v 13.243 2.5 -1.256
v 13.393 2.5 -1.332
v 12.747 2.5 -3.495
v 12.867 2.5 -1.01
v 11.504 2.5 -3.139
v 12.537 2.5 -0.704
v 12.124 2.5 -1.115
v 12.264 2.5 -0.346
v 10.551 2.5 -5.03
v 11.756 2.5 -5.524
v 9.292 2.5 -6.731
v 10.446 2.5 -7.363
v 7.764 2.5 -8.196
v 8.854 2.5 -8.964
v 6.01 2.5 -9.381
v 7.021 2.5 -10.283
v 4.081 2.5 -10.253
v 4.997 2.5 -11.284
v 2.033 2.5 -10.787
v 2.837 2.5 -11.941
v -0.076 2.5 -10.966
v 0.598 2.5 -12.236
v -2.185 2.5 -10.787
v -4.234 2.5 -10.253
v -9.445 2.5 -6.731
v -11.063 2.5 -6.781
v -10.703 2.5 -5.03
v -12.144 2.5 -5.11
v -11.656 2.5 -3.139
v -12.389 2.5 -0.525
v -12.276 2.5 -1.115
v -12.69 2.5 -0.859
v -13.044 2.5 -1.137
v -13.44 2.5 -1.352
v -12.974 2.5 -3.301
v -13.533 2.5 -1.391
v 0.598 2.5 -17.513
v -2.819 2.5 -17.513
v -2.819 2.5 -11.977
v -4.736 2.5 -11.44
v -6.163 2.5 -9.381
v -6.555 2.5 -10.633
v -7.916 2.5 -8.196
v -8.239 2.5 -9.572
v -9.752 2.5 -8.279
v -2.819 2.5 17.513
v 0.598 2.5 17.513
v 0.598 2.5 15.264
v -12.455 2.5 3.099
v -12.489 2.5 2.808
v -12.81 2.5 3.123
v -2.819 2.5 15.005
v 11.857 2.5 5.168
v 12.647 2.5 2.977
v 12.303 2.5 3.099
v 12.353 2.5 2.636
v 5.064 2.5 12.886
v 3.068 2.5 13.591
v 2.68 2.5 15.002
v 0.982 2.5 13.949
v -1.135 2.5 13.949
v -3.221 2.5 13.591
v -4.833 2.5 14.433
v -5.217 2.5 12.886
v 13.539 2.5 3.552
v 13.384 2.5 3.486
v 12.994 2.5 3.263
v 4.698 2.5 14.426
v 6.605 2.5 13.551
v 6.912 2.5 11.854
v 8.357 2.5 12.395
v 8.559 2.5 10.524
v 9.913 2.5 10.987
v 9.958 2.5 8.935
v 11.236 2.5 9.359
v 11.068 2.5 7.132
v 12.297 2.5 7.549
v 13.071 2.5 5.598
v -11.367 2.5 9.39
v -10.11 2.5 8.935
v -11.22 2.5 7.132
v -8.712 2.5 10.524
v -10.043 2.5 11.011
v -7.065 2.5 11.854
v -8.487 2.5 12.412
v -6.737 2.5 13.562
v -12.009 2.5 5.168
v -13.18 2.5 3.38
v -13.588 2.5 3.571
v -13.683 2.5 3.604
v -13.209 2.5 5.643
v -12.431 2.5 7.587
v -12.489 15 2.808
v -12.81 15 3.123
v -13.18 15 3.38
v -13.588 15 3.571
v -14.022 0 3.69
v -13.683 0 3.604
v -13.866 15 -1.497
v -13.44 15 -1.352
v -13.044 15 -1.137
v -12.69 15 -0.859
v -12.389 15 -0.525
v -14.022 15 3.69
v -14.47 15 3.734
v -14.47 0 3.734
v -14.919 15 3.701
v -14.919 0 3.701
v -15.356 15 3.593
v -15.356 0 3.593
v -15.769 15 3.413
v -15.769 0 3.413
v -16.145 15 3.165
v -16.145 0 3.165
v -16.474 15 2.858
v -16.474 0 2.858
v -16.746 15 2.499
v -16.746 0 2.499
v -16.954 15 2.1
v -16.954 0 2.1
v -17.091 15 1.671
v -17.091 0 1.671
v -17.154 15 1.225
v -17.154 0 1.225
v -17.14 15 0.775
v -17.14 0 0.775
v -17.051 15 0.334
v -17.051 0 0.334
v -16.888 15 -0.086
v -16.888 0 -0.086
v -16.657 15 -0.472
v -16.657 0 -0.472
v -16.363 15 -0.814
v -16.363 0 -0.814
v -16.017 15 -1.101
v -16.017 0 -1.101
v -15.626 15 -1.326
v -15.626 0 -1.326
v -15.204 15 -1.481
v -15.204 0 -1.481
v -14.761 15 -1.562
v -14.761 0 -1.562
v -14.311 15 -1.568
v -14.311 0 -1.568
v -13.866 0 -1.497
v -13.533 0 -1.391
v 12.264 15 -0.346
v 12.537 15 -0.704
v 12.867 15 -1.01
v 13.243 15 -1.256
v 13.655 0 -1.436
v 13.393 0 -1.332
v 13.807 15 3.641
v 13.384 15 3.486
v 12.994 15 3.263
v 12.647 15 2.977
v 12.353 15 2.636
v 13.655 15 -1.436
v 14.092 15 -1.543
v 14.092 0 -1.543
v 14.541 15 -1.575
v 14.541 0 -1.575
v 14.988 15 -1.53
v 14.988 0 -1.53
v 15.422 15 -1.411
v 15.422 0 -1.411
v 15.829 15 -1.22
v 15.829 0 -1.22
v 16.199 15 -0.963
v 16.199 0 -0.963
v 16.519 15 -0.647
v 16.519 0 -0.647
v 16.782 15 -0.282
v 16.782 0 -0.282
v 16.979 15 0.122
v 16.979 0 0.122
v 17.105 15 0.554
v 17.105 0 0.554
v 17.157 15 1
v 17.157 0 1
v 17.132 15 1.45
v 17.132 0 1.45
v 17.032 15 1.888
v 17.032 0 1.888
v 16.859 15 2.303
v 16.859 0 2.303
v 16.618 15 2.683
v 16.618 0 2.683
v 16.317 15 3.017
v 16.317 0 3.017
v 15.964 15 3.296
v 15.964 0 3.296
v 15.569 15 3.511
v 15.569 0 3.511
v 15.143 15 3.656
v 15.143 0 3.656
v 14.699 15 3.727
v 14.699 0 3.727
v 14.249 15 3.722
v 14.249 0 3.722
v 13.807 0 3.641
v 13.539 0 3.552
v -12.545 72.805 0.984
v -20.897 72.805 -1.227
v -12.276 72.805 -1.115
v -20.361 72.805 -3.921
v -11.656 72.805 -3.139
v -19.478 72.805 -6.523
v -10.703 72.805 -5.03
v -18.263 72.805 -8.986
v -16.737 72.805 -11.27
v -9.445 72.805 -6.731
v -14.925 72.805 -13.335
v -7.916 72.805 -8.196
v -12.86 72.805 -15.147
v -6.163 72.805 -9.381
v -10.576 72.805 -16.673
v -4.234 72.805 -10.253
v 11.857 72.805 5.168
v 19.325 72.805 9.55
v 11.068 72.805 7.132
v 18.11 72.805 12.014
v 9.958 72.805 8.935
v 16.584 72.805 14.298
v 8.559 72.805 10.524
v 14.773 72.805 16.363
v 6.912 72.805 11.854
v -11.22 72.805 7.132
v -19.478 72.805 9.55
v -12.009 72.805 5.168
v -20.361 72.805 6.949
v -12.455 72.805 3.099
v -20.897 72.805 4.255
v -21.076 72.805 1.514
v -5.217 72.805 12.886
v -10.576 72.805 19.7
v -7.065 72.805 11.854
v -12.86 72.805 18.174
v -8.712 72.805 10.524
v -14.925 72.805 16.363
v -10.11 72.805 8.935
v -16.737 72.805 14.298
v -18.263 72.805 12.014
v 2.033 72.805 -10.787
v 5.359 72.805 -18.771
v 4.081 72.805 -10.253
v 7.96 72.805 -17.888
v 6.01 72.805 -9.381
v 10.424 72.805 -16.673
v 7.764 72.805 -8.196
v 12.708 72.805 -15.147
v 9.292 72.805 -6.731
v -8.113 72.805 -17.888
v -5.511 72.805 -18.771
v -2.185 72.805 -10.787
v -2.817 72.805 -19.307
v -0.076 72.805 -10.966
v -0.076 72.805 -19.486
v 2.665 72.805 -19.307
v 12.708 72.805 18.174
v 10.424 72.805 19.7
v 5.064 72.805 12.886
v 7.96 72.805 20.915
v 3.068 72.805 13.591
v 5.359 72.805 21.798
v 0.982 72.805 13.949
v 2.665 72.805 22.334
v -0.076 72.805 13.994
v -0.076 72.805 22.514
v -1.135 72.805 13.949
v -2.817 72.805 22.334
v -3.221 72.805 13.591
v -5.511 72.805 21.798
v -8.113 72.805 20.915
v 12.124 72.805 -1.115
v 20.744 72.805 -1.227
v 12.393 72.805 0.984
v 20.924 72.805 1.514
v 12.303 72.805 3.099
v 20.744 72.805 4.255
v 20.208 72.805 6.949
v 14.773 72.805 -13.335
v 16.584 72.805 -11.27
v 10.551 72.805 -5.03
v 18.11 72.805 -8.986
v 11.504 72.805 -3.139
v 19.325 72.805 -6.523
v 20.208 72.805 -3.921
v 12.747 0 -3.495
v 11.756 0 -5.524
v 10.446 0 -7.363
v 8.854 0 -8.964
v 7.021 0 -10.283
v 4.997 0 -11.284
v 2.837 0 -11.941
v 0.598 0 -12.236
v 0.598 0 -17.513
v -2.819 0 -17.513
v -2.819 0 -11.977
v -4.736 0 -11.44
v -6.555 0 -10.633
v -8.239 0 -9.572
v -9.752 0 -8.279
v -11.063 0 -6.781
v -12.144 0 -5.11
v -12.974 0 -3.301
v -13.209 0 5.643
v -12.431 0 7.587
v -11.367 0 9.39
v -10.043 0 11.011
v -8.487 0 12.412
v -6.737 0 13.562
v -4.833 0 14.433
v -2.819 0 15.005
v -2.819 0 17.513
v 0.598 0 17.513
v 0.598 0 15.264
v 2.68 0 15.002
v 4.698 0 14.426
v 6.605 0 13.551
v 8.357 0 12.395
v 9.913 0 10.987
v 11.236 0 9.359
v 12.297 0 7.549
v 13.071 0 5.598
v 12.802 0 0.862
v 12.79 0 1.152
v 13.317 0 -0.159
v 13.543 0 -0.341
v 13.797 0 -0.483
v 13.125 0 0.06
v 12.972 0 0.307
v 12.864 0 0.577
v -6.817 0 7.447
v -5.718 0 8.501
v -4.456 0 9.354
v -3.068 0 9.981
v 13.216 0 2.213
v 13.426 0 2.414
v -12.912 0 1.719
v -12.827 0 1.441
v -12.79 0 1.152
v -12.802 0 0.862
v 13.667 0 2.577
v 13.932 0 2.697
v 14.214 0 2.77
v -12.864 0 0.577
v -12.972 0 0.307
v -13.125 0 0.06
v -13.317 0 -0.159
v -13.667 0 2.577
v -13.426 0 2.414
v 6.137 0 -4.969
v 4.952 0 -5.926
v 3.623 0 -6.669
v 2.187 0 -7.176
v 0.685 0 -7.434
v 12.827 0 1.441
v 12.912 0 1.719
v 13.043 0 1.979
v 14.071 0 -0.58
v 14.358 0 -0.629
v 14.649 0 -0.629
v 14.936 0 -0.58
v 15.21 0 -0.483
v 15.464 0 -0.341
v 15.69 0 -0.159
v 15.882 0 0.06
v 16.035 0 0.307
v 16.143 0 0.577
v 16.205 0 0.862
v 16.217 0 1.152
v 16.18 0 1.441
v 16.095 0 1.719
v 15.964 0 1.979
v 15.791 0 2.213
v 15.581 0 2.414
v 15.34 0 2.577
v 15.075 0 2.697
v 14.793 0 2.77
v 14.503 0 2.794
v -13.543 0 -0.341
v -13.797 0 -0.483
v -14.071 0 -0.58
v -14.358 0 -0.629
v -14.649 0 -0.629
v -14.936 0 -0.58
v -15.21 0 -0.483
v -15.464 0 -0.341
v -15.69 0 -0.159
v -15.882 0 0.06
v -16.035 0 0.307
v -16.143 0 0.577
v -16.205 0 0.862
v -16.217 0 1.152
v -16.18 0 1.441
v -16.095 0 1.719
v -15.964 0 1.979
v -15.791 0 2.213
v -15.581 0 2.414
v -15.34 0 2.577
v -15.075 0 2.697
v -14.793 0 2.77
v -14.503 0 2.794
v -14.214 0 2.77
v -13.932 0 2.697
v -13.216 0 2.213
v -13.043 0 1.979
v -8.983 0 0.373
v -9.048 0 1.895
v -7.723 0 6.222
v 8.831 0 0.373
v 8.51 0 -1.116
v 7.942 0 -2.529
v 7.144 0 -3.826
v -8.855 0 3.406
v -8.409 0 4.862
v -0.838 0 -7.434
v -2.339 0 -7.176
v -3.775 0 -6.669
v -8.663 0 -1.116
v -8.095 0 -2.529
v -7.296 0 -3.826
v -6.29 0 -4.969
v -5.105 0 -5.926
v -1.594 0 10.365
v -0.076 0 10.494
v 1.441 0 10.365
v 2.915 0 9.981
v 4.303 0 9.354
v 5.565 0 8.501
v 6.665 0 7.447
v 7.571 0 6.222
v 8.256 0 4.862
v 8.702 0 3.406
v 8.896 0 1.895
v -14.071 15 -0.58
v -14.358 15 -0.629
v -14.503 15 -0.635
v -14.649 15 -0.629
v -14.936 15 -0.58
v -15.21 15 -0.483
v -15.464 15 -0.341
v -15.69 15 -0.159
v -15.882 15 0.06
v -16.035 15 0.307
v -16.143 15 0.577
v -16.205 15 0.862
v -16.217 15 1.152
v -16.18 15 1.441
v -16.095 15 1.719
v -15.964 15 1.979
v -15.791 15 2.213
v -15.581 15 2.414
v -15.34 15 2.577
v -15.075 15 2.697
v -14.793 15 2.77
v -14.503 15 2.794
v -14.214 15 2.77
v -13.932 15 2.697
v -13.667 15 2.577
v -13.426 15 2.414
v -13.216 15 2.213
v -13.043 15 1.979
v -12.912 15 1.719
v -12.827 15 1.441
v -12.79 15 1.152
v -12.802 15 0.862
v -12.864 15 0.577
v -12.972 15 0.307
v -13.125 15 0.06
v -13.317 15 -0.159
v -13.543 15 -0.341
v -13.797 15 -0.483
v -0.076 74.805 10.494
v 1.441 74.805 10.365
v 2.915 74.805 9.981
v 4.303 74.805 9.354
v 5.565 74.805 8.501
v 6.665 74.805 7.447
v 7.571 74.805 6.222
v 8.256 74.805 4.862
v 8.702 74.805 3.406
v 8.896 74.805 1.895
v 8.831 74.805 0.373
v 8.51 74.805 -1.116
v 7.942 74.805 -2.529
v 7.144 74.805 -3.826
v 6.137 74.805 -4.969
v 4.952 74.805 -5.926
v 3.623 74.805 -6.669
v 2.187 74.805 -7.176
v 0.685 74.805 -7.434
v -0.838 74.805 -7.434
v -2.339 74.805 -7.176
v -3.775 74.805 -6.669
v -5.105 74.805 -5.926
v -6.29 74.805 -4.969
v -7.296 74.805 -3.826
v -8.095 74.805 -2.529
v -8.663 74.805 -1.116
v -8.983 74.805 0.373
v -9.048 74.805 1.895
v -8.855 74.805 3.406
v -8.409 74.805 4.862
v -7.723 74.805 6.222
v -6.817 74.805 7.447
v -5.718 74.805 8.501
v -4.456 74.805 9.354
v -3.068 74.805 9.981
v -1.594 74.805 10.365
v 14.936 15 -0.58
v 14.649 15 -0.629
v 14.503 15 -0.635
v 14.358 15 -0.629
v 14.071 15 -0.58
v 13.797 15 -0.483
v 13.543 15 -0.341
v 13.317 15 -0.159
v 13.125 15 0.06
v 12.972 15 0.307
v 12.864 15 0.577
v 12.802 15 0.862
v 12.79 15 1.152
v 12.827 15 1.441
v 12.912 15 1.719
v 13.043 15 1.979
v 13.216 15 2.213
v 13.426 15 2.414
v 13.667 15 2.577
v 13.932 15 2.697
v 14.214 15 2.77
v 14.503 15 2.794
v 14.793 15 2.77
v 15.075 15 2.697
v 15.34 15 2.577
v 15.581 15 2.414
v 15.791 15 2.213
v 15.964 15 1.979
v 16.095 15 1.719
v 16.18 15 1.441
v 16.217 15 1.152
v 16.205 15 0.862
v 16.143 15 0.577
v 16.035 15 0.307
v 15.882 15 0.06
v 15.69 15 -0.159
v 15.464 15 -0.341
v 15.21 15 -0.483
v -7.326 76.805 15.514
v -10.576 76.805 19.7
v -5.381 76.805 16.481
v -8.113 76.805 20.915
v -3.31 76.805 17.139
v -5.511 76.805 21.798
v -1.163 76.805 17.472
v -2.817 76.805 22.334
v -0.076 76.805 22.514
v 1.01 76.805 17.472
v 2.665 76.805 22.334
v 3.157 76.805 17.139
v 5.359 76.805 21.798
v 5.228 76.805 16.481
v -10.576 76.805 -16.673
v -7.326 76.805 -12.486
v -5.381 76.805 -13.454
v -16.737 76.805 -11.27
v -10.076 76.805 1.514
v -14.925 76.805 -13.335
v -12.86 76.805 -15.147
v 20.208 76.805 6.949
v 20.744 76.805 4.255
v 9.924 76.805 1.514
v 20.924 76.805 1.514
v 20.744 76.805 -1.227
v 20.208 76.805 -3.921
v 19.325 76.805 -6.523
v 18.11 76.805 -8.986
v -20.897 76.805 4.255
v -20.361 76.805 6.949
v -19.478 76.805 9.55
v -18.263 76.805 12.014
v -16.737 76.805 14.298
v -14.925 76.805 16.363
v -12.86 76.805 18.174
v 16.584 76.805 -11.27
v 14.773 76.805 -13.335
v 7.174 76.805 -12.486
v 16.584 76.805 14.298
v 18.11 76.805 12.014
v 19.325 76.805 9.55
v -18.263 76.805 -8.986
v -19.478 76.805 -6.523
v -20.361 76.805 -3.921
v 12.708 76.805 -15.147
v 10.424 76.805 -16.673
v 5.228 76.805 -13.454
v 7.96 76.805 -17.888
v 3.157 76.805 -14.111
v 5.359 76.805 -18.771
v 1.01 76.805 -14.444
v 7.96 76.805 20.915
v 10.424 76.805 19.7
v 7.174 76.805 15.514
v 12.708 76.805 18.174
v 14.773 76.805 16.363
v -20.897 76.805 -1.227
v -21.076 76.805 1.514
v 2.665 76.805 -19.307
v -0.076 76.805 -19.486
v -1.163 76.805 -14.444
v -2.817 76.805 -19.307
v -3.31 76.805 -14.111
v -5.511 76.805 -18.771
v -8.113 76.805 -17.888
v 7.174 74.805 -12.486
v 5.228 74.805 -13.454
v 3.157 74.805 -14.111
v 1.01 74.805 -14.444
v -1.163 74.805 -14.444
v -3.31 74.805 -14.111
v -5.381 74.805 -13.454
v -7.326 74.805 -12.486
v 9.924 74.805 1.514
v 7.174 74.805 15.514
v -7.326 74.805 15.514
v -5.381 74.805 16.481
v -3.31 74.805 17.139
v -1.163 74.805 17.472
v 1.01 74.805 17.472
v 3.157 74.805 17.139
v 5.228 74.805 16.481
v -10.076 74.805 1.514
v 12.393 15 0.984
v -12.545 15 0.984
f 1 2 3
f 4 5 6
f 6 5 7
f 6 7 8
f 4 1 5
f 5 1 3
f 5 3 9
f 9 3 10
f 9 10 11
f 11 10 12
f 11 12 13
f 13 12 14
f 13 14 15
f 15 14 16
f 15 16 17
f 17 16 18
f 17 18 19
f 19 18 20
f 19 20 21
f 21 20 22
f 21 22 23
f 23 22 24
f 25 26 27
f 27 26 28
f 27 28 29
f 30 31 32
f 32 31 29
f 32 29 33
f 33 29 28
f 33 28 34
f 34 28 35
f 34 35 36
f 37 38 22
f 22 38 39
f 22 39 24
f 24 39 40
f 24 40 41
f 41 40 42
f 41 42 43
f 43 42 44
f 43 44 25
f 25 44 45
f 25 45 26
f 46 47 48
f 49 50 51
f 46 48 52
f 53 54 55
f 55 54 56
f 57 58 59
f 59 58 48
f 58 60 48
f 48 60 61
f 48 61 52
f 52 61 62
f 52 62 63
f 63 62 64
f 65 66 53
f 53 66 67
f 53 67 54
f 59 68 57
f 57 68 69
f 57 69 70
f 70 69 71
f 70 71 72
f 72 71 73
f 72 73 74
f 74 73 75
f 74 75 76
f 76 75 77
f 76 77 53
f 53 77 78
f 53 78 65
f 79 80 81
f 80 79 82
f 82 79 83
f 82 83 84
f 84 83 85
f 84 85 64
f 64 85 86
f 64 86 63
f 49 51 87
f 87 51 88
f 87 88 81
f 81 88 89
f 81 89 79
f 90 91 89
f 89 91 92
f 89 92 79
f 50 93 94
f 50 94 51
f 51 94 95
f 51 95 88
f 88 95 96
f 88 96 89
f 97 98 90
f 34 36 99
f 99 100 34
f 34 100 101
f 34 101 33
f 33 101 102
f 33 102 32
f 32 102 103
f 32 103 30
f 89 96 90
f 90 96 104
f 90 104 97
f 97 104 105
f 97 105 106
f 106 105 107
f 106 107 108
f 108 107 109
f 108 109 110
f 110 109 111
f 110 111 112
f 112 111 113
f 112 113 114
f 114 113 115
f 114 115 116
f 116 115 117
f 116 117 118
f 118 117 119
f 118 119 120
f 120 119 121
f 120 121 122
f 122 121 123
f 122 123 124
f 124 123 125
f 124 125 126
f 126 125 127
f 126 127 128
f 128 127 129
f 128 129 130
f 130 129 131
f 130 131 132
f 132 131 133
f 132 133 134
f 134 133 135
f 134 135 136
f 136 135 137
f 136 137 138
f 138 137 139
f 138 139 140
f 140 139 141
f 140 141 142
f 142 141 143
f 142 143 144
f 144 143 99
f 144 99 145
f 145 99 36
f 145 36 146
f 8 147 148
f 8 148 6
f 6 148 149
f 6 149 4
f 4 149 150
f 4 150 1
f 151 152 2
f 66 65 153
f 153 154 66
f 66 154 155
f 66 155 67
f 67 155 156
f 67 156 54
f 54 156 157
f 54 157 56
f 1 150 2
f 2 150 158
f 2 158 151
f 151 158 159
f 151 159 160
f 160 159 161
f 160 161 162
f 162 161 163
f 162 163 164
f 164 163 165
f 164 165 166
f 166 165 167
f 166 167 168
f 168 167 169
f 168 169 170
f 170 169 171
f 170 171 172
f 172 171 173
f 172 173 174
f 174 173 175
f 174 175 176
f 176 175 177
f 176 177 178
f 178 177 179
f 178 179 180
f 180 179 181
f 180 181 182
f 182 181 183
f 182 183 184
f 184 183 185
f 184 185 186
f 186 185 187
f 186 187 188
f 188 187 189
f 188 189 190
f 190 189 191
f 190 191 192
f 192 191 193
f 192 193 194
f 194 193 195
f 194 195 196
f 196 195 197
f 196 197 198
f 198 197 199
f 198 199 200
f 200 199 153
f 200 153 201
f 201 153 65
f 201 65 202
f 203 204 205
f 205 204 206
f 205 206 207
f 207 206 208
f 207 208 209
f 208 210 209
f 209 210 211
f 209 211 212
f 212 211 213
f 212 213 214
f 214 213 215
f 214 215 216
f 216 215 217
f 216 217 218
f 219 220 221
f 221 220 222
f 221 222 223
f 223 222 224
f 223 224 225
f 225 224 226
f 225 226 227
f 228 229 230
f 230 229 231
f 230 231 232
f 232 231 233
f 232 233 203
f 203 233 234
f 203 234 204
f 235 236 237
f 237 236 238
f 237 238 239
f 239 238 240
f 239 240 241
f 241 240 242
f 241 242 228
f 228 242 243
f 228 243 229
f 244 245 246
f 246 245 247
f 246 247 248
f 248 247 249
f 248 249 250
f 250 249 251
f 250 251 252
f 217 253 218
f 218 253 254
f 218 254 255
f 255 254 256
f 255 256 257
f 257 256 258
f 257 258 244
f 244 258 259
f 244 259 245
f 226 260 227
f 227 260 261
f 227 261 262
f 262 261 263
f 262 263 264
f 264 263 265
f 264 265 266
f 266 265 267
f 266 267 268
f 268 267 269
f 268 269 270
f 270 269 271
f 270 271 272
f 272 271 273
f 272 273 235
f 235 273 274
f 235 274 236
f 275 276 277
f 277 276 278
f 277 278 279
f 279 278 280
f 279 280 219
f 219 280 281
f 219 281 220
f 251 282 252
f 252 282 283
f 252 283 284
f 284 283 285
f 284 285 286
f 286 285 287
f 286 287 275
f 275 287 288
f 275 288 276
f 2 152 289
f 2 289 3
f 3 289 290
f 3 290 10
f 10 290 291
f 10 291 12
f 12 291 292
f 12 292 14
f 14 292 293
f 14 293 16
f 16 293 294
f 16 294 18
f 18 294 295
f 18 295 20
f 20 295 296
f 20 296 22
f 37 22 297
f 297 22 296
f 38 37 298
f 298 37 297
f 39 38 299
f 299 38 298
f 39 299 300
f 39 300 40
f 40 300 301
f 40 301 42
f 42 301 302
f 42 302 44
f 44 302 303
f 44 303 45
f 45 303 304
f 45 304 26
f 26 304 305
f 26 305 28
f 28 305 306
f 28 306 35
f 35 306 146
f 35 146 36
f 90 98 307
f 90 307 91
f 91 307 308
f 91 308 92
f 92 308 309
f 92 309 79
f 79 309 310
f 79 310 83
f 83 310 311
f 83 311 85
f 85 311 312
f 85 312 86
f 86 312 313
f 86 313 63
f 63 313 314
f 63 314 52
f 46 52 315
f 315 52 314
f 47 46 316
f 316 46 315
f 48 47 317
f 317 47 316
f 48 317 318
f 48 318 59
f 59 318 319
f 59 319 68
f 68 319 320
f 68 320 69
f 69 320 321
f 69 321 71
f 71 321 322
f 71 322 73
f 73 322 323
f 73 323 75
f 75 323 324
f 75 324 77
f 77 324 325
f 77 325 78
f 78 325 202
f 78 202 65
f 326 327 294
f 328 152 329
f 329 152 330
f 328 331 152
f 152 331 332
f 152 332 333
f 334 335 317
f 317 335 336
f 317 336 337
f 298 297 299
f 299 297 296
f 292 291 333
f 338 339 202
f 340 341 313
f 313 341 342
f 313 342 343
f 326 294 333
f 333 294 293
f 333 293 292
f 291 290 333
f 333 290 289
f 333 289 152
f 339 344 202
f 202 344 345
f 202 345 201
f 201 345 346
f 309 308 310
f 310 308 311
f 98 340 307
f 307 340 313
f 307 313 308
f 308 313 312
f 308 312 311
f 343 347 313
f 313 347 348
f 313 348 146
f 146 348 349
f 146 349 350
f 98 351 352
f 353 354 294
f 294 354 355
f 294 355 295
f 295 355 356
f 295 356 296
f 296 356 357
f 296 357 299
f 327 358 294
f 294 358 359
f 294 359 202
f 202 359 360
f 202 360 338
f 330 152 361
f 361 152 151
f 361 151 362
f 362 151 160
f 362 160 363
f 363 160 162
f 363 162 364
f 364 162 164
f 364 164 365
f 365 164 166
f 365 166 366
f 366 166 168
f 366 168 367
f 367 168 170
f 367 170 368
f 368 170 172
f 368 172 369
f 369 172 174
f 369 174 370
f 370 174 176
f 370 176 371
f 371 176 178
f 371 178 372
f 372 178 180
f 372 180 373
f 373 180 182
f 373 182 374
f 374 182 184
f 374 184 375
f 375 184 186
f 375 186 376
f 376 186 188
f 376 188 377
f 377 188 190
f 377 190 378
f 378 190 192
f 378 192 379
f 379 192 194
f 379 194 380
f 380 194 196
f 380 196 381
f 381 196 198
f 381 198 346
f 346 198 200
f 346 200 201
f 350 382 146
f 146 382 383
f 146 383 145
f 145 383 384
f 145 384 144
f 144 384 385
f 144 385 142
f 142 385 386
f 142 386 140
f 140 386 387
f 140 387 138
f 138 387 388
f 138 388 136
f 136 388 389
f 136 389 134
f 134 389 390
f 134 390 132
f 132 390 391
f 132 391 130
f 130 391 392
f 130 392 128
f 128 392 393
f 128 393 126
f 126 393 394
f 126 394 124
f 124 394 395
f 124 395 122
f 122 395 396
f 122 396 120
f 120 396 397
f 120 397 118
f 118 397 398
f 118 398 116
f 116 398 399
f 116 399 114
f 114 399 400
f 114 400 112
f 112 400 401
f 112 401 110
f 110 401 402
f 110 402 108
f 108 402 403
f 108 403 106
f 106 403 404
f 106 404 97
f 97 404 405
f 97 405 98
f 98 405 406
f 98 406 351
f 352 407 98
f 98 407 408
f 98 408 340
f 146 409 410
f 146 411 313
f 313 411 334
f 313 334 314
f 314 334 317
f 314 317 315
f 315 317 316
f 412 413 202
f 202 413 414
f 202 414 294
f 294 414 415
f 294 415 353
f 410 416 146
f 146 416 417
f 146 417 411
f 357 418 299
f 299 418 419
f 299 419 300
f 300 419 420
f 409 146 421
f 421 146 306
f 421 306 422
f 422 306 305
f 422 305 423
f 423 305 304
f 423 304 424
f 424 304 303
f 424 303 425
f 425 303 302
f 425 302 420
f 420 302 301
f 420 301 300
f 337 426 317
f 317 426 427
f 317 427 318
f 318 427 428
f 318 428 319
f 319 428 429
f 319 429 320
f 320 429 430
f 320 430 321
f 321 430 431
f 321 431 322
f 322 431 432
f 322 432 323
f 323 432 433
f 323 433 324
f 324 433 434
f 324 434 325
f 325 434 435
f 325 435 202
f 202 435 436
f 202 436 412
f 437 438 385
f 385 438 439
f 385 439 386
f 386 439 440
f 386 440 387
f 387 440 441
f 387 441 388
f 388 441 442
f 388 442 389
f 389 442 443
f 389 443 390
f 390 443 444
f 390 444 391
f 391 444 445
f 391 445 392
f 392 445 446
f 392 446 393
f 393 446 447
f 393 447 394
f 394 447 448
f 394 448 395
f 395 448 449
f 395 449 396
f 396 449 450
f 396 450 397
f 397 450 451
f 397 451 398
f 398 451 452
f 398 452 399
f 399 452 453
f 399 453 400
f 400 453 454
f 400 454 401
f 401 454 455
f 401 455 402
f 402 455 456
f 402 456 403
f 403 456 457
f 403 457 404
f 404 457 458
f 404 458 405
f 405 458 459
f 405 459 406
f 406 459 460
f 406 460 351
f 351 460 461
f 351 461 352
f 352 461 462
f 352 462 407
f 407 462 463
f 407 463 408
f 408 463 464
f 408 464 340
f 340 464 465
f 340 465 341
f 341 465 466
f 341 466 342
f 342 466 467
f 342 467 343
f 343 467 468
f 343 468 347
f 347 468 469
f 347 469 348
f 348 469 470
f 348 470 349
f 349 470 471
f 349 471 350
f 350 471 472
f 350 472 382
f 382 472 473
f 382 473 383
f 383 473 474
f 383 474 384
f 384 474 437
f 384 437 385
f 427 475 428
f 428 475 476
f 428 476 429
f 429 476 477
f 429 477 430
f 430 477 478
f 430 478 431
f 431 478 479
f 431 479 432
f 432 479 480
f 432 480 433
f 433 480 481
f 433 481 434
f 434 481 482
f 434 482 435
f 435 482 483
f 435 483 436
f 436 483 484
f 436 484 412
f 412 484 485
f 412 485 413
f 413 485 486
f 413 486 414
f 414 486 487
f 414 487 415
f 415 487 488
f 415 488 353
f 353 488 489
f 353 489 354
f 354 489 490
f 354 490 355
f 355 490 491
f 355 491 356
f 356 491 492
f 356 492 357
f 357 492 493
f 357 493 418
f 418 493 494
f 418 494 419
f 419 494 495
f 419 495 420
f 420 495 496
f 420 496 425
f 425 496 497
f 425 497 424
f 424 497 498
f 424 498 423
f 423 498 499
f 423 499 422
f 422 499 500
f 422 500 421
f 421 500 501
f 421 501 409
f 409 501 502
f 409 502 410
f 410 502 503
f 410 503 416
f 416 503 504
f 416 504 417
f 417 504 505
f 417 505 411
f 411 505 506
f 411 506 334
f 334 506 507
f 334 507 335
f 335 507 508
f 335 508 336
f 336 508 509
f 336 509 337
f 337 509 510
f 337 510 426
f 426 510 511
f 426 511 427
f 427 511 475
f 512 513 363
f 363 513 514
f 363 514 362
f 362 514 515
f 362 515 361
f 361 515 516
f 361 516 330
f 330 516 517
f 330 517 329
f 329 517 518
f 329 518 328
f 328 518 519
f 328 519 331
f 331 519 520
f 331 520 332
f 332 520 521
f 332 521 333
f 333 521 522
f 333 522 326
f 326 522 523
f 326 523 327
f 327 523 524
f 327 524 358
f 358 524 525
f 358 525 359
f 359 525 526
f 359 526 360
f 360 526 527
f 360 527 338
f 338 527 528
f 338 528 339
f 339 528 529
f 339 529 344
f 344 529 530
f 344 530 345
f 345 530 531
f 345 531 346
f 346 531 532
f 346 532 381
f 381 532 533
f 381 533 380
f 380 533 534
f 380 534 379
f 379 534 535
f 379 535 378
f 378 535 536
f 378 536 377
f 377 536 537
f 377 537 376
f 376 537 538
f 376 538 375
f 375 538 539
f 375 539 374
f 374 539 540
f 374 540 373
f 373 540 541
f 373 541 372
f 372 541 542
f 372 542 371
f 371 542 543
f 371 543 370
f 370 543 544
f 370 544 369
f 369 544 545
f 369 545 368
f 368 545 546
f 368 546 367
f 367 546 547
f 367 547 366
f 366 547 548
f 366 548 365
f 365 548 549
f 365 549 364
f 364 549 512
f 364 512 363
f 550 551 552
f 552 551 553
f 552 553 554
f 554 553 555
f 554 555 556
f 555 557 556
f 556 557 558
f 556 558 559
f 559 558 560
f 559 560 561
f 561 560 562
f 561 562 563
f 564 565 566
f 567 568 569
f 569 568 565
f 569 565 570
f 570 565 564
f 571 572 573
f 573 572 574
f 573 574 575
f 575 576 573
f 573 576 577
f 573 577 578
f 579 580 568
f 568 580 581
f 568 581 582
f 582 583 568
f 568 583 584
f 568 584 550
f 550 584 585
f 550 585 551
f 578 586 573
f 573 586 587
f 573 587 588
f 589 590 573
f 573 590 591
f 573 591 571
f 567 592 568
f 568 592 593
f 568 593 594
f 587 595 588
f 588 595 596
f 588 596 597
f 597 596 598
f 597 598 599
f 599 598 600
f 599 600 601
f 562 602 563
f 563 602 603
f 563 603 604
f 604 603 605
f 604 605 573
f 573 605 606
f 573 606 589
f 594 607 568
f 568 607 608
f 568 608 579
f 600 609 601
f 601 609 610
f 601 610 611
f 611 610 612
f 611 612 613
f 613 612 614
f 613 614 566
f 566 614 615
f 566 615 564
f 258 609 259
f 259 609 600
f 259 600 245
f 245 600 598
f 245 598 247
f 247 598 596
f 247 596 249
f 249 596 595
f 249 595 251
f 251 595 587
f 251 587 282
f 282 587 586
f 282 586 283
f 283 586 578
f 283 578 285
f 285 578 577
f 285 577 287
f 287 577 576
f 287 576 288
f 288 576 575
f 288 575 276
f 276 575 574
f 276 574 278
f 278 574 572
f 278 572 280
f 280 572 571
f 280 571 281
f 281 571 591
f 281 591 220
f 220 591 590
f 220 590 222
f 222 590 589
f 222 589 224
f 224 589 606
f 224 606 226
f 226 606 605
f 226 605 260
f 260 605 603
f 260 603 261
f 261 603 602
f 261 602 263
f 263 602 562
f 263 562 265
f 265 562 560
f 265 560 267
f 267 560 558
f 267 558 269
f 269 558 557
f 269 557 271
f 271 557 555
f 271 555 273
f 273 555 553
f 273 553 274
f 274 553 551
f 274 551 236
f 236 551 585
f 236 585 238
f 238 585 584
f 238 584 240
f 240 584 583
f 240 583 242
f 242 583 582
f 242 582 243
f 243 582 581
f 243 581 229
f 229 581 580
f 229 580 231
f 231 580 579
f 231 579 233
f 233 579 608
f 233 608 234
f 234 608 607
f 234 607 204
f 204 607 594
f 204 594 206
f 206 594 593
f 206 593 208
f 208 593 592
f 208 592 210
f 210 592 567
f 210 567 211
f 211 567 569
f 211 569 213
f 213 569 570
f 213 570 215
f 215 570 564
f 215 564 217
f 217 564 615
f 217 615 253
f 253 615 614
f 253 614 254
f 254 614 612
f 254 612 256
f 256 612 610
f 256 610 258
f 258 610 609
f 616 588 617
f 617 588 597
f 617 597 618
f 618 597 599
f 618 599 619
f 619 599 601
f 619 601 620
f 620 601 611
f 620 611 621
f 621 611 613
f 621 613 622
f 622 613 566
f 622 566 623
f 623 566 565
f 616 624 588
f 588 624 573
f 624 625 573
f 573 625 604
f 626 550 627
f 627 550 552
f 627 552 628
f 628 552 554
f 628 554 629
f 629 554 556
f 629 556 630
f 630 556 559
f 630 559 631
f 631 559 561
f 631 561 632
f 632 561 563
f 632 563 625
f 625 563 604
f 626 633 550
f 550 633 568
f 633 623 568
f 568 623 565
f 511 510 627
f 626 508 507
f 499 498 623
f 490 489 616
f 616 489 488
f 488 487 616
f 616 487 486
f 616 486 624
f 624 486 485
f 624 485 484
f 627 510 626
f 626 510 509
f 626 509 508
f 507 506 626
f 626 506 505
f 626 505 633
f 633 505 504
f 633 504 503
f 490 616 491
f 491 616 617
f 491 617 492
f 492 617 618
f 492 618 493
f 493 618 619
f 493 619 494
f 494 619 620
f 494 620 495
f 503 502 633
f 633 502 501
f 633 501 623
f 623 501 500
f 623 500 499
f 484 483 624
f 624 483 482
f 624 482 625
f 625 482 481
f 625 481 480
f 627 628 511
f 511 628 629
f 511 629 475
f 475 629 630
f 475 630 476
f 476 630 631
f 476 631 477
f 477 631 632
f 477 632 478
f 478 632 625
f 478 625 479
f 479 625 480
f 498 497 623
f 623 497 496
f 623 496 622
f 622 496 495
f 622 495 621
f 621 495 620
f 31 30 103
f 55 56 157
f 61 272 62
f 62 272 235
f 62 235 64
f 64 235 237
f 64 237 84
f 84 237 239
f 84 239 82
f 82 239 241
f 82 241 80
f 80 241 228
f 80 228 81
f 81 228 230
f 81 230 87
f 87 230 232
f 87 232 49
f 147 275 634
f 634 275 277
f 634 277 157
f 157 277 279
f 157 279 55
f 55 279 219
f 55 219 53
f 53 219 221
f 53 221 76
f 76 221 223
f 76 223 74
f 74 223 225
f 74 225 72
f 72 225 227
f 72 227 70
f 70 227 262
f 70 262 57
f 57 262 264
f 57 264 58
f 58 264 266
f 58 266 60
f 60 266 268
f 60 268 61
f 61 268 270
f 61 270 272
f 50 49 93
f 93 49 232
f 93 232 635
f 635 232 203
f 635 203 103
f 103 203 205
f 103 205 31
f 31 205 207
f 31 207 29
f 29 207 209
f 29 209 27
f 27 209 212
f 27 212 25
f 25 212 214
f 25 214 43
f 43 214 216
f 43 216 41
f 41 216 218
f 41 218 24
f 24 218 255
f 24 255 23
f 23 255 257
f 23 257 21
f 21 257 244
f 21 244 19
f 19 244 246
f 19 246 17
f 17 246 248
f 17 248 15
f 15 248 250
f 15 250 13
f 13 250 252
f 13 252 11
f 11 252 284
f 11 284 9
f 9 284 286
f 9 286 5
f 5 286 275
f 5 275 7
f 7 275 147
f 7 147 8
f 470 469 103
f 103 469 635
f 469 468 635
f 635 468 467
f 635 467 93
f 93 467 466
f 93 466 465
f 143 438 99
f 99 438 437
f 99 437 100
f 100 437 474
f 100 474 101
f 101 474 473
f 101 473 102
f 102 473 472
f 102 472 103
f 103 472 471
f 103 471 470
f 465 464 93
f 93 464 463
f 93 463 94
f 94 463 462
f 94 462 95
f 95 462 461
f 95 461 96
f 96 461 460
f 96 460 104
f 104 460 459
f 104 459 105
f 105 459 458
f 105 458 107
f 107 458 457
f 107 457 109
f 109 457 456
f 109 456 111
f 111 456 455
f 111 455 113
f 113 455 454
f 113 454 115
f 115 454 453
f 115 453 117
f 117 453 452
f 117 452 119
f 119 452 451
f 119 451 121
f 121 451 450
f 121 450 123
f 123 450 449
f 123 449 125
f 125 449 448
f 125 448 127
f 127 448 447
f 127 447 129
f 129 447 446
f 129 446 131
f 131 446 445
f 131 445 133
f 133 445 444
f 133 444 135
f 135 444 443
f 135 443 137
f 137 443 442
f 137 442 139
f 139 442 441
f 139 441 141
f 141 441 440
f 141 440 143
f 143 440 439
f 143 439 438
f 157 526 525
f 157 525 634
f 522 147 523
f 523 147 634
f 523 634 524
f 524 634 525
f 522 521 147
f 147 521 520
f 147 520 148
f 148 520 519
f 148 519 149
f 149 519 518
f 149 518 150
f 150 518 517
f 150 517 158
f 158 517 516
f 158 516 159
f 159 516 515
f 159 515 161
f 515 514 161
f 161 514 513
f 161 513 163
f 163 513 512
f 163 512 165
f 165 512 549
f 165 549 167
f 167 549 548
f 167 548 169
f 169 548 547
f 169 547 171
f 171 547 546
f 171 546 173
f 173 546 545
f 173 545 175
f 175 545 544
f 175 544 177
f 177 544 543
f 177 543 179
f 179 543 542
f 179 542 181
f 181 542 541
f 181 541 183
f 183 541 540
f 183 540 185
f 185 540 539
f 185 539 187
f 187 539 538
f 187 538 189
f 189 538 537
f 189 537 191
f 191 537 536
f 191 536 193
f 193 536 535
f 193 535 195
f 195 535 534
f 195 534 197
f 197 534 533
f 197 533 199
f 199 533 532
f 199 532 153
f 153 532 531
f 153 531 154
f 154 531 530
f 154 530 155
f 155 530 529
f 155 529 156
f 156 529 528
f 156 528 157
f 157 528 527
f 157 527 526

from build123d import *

# Parameters (mm, degrees)
BOSS_EXTRUDE1_DEPTH = 2.5
CUT_EXTRUDE1_REACH  = 26.645
SKETCH2_R           = 1.715
SKETCH2_R_2         = 8.98
SKETCH3_R           = 2.6543
BOSS_EXTRUDE2_DEPTH = 70.305
BOSS_EXTRUDE3_START = 4
SKETCH4_R           = 21
SKETCH4_R_2         = 8.98
BOSS_EXTRUDE3_DEPTH = 4
SKETCH6_R           = 21
SKETCH6_R_2         = 8.98
BOSS_EXTRUDE4_DEPTH = 2
CUT_EXTRUDE3_START  = -15
SKETCH7_R           = 1.715
CUT_EXTRUDE3_DEPTH  = 15
SKETCH8_R           = 8.98
CUT_EXTRUDE4_DEPTH  = 2
BOSS_EXTRUDE6_REACH = 82.451
SKETCH10_R          = 12.48
SKETCH10_R_2        = 8.98
SKETCH12_R          = 21
SKETCH12_R_2        = 12.48
CUT_EXTRUDE5_DEPTH  = 57.805


with BuildPart() as part:
    # Sketch1 → Boss-Extrude1 (new body)
    with BuildSketch(Plane(origin=(0, 0, 0), x_dir=(1, 0, 0), z_dir=(0, 1, 0))):
        with BuildLine():
            Line((0.597960958, 12.236443242), (0.597960958, 17.5133))
            Line((0.597960958, 17.5133), (-2.819411684, 17.5133))
            Line((-2.819411684, 17.5133), (-2.819411684, 11.976881697))
            ThreePointArc((-2.819411684, 11.976881697), (-9.752212861, 8.278991937), (-13.533031252, 1.391065316))
            ThreePointArc((-13.533031252, 1.391065316), (-17.156497956, -0.999626805), (-13.683409812, -3.603965207))
            ThreePointArc((-13.683409812, -3.603965207), (-10.042516815, -11.01106651), (-2.819411684, -15.004561697))
            Line((-2.819411684, -15.004561697), (-2.819411684, -17.5133))
            Line((-2.819411684, -17.5133), (0.597960958, -17.5133))
            Line((0.597960958, -17.5133), (0.597960958, -15.264123242))
            ThreePointArc((0.597960958, -15.264123242), (9.161591247, -11.721092084), (13.538839655, -3.55233882))
            ThreePointArc((13.538839655, -3.55233882), (17.156522938, -1.000460972), (13.393344487, 1.331534062))
            ThreePointArc((13.393344487, 1.331534062), (8.853545908, 8.96396608), (0.597960958, 12.236443242))
        make_face()
    extrude(amount=BOSS_EXTRUDE1_DEPTH)

    # Sketch2 → Cut-Extrude1 (cut, up to next)
    with BuildSketch(Plane(origin=(0, 2.5, 0), x_dir=(1, 0, 0), z_dir=(0, 1, 0)), mode=Mode.PRIVATE) as cut_extrude1_sk1:
        with Locations(Location((-14.5034, -1.0795, 0), (0, 0, 270))):
            Circle(SKETCH2_R)
    cut_extrude1_tool1 = extrude(cut_extrude1_sk1.sketch, amount=-CUT_EXTRUDE1_REACH, mode=Mode.PRIVATE) & part.part
    # Sketch2 → Cut-Extrude1 (cut, up to next)
    with BuildSketch(Plane(origin=(0, 2.5, 0), x_dir=(1, 0, 0), z_dir=(0, 1, 0)), mode=Mode.PRIVATE) as cut_extrude1_sk2:
        with Locations(Location((14.5034, -1.0795, 0), (0, 0, 270))):
            Circle(SKETCH2_R)
    cut_extrude1_tool2 = extrude(cut_extrude1_sk2.sketch, amount=-CUT_EXTRUDE1_REACH, mode=Mode.PRIVATE) & part.part
    # Sketch2 → Cut-Extrude1 (cut, up to next)
    with BuildSketch(Plane(origin=(0, 2.5, 0), x_dir=(1, 0, 0), z_dir=(0, 1, 0)), mode=Mode.PRIVATE) as cut_extrude1_sk3:
        with Locations(Location((-0.0762, -1.51384, 0), (0, 0, 270))):
            Circle(SKETCH2_R_2)
    cut_extrude1_tool3 = extrude(cut_extrude1_sk3.sketch, amount=-CUT_EXTRUDE1_REACH, mode=Mode.PRIVATE) & part.part
    add(cut_extrude1_tool1.solids().sort_by_distance((-14.5034, 2.5, 1.0795))[0], mode=Mode.SUBTRACT)
    add(cut_extrude1_tool2.solids().sort_by_distance((14.5034, 2.5, 1.0795))[0], mode=Mode.SUBTRACT)
    add(cut_extrude1_tool3.solids().sort_by_distance((-0.0762, 2.5, 1.51384))[0], mode=Mode.SUBTRACT)

    # Sketch3 → Boss-Extrude2 (add)
    with BuildSketch(Plane(origin=(0, 2.5, 0), x_dir=(1, 0, 0), z_dir=(0, 1, 0))):
        with Locations(Location((-14.5034, -1.0795, 0), (0, 0, 68.556492541))):
            Circle(SKETCH3_R)
        with Locations(Location((14.5034, -1.0795, 0), (0, 0, 114.72164566))):
            Circle(SKETCH3_R)
    extrude(amount=BOSS_EXTRUDE2_DEPTH)

    # Sketch4 → Boss-Extrude3 (add)
    with BuildSketch(Plane(origin=(0, 72.805, 0), x_dir=(1, 0, 0), z_dir=(0, 1, 0)).offset(BOSS_EXTRUDE3_START)):
        with Locations(Location((-0.0762, -1.51384, 0), (0, 0, 270))):
            Circle(SKETCH4_R)
        with Locations(Location((-0.0762, -1.51384, 0), (0, 0, 270))):
            Circle(SKETCH4_R_2, mode=Mode.SUBTRACT)
    extrude(amount=-BOSS_EXTRUDE3_DEPTH)

    # Sketch6 → Boss-Extrude4 (add)
    with BuildSketch(Plane(origin=(0, 37.805, 0), x_dir=(-1, 0, 0), z_dir=(0, -1, 0))):
        with Locations(Location((0.0762, -1.51384, 0), (0, 0, 90))):
            Circle(SKETCH6_R)
        with Locations(Location((0.0762, -1.51384, 0), (0, 0, 270))):
            Circle(SKETCH6_R_2, mode=Mode.SUBTRACT)
    extrude(amount=BOSS_EXTRUDE4_DEPTH)

    # Sketch7 → Cut-Extrude3 (cut)
    with BuildSketch(Plane.XZ.offset(CUT_EXTRUDE3_START)):
        with Locations(Location((-14.5034, 1.0795, 0), (0, 0, 90))):
            Circle(SKETCH7_R)
        with Locations(Location((14.5034, 1.0795, 0), (0, 0, 90))):
            Circle(SKETCH7_R)
    extrude(amount=CUT_EXTRUDE3_DEPTH, mode=Mode.SUBTRACT)

    # Sketch8 → Cut-Extrude4 (cut)
    with BuildSketch(Plane(origin=(0, 76.805, 0), x_dir=(1, 0, 0), z_dir=(0, 1, 0))):
        with BuildLine():
            Line((-10.0762, -1.51384), (-7.3262, -15.51384))
            ThreePointArc((-7.3262, -15.51384), (-0.0762, -17.51384), (7.1738, -15.51384))
            Line((7.1738, -15.51384), (9.9238, -1.51384))
            Line((9.9238, -1.51384), (7.1738, 12.48616))
            ThreePointArc((7.1738, 12.48616), (-0.0762, 14.48616), (-7.3262, 12.48616))
            Line((-7.3262, 12.48616), (-10.0762, -1.51384))
        make_face()
        with Locations(Location((-0.0762, -1.51384, 0), (0, 0, 270))):
            Circle(SKETCH8_R, mode=Mode.SUBTRACT)
    extrude(amount=-CUT_EXTRUDE4_DEPTH, mode=Mode.SUBTRACT)

    # Boss-Extrude6: up to this face of the body (flat: up to its plane)
    boss_extrude6_end = Plane(part.part.faces().sort_by_distance((-0.0762, 72.805, -18.892190304))[0])
    # Sketch10 → Boss-Extrude6 (add, up to the picked face)
    with BuildSketch(Plane(origin=(0, 2.5, 0), x_dir=(1, 0, 0), z_dir=(0, 1, 0)), mode=Mode.PRIVATE) as boss_extrude6_sk1:
        with Locations((-0.0762, -1.51384)):
            Circle(SKETCH10_R)
        with Locations(Location((-0.0762, -1.51384, 0), (0, 0, 270))):
            Circle(SKETCH10_R_2, mode=Mode.SUBTRACT)
    boss_extrude6_tool1 = split(extrude(boss_extrude6_sk1.sketch, amount=BOSS_EXTRUDE6_REACH, mode=Mode.PRIVATE), bisect_by=boss_extrude6_end, keep=Keep.BOTH, mode=Mode.PRIVATE)
    add(boss_extrude6_tool1.solids().sort_by(Axis((-12.203212, 2.5, 1.51384), (0, 1, 0)))[0])

    # Sketch12 → Cut-Extrude5 (cut)
    with BuildSketch(Plane.XZ.offset(-15)):
        with Locations(Location((-0.0762, 1.51384, 0), (0, 0, 90))):
            Circle(SKETCH12_R)
        with Locations(Location((-0.0762, 1.51384, 0), (0, 0, 189.400360909))):
            Circle(SKETCH12_R_2, mode=Mode.SUBTRACT)
    extrude(amount=-CUT_EXTRUDE5_DEPTH, mode=Mode.SUBTRACT)


solid = part.part
